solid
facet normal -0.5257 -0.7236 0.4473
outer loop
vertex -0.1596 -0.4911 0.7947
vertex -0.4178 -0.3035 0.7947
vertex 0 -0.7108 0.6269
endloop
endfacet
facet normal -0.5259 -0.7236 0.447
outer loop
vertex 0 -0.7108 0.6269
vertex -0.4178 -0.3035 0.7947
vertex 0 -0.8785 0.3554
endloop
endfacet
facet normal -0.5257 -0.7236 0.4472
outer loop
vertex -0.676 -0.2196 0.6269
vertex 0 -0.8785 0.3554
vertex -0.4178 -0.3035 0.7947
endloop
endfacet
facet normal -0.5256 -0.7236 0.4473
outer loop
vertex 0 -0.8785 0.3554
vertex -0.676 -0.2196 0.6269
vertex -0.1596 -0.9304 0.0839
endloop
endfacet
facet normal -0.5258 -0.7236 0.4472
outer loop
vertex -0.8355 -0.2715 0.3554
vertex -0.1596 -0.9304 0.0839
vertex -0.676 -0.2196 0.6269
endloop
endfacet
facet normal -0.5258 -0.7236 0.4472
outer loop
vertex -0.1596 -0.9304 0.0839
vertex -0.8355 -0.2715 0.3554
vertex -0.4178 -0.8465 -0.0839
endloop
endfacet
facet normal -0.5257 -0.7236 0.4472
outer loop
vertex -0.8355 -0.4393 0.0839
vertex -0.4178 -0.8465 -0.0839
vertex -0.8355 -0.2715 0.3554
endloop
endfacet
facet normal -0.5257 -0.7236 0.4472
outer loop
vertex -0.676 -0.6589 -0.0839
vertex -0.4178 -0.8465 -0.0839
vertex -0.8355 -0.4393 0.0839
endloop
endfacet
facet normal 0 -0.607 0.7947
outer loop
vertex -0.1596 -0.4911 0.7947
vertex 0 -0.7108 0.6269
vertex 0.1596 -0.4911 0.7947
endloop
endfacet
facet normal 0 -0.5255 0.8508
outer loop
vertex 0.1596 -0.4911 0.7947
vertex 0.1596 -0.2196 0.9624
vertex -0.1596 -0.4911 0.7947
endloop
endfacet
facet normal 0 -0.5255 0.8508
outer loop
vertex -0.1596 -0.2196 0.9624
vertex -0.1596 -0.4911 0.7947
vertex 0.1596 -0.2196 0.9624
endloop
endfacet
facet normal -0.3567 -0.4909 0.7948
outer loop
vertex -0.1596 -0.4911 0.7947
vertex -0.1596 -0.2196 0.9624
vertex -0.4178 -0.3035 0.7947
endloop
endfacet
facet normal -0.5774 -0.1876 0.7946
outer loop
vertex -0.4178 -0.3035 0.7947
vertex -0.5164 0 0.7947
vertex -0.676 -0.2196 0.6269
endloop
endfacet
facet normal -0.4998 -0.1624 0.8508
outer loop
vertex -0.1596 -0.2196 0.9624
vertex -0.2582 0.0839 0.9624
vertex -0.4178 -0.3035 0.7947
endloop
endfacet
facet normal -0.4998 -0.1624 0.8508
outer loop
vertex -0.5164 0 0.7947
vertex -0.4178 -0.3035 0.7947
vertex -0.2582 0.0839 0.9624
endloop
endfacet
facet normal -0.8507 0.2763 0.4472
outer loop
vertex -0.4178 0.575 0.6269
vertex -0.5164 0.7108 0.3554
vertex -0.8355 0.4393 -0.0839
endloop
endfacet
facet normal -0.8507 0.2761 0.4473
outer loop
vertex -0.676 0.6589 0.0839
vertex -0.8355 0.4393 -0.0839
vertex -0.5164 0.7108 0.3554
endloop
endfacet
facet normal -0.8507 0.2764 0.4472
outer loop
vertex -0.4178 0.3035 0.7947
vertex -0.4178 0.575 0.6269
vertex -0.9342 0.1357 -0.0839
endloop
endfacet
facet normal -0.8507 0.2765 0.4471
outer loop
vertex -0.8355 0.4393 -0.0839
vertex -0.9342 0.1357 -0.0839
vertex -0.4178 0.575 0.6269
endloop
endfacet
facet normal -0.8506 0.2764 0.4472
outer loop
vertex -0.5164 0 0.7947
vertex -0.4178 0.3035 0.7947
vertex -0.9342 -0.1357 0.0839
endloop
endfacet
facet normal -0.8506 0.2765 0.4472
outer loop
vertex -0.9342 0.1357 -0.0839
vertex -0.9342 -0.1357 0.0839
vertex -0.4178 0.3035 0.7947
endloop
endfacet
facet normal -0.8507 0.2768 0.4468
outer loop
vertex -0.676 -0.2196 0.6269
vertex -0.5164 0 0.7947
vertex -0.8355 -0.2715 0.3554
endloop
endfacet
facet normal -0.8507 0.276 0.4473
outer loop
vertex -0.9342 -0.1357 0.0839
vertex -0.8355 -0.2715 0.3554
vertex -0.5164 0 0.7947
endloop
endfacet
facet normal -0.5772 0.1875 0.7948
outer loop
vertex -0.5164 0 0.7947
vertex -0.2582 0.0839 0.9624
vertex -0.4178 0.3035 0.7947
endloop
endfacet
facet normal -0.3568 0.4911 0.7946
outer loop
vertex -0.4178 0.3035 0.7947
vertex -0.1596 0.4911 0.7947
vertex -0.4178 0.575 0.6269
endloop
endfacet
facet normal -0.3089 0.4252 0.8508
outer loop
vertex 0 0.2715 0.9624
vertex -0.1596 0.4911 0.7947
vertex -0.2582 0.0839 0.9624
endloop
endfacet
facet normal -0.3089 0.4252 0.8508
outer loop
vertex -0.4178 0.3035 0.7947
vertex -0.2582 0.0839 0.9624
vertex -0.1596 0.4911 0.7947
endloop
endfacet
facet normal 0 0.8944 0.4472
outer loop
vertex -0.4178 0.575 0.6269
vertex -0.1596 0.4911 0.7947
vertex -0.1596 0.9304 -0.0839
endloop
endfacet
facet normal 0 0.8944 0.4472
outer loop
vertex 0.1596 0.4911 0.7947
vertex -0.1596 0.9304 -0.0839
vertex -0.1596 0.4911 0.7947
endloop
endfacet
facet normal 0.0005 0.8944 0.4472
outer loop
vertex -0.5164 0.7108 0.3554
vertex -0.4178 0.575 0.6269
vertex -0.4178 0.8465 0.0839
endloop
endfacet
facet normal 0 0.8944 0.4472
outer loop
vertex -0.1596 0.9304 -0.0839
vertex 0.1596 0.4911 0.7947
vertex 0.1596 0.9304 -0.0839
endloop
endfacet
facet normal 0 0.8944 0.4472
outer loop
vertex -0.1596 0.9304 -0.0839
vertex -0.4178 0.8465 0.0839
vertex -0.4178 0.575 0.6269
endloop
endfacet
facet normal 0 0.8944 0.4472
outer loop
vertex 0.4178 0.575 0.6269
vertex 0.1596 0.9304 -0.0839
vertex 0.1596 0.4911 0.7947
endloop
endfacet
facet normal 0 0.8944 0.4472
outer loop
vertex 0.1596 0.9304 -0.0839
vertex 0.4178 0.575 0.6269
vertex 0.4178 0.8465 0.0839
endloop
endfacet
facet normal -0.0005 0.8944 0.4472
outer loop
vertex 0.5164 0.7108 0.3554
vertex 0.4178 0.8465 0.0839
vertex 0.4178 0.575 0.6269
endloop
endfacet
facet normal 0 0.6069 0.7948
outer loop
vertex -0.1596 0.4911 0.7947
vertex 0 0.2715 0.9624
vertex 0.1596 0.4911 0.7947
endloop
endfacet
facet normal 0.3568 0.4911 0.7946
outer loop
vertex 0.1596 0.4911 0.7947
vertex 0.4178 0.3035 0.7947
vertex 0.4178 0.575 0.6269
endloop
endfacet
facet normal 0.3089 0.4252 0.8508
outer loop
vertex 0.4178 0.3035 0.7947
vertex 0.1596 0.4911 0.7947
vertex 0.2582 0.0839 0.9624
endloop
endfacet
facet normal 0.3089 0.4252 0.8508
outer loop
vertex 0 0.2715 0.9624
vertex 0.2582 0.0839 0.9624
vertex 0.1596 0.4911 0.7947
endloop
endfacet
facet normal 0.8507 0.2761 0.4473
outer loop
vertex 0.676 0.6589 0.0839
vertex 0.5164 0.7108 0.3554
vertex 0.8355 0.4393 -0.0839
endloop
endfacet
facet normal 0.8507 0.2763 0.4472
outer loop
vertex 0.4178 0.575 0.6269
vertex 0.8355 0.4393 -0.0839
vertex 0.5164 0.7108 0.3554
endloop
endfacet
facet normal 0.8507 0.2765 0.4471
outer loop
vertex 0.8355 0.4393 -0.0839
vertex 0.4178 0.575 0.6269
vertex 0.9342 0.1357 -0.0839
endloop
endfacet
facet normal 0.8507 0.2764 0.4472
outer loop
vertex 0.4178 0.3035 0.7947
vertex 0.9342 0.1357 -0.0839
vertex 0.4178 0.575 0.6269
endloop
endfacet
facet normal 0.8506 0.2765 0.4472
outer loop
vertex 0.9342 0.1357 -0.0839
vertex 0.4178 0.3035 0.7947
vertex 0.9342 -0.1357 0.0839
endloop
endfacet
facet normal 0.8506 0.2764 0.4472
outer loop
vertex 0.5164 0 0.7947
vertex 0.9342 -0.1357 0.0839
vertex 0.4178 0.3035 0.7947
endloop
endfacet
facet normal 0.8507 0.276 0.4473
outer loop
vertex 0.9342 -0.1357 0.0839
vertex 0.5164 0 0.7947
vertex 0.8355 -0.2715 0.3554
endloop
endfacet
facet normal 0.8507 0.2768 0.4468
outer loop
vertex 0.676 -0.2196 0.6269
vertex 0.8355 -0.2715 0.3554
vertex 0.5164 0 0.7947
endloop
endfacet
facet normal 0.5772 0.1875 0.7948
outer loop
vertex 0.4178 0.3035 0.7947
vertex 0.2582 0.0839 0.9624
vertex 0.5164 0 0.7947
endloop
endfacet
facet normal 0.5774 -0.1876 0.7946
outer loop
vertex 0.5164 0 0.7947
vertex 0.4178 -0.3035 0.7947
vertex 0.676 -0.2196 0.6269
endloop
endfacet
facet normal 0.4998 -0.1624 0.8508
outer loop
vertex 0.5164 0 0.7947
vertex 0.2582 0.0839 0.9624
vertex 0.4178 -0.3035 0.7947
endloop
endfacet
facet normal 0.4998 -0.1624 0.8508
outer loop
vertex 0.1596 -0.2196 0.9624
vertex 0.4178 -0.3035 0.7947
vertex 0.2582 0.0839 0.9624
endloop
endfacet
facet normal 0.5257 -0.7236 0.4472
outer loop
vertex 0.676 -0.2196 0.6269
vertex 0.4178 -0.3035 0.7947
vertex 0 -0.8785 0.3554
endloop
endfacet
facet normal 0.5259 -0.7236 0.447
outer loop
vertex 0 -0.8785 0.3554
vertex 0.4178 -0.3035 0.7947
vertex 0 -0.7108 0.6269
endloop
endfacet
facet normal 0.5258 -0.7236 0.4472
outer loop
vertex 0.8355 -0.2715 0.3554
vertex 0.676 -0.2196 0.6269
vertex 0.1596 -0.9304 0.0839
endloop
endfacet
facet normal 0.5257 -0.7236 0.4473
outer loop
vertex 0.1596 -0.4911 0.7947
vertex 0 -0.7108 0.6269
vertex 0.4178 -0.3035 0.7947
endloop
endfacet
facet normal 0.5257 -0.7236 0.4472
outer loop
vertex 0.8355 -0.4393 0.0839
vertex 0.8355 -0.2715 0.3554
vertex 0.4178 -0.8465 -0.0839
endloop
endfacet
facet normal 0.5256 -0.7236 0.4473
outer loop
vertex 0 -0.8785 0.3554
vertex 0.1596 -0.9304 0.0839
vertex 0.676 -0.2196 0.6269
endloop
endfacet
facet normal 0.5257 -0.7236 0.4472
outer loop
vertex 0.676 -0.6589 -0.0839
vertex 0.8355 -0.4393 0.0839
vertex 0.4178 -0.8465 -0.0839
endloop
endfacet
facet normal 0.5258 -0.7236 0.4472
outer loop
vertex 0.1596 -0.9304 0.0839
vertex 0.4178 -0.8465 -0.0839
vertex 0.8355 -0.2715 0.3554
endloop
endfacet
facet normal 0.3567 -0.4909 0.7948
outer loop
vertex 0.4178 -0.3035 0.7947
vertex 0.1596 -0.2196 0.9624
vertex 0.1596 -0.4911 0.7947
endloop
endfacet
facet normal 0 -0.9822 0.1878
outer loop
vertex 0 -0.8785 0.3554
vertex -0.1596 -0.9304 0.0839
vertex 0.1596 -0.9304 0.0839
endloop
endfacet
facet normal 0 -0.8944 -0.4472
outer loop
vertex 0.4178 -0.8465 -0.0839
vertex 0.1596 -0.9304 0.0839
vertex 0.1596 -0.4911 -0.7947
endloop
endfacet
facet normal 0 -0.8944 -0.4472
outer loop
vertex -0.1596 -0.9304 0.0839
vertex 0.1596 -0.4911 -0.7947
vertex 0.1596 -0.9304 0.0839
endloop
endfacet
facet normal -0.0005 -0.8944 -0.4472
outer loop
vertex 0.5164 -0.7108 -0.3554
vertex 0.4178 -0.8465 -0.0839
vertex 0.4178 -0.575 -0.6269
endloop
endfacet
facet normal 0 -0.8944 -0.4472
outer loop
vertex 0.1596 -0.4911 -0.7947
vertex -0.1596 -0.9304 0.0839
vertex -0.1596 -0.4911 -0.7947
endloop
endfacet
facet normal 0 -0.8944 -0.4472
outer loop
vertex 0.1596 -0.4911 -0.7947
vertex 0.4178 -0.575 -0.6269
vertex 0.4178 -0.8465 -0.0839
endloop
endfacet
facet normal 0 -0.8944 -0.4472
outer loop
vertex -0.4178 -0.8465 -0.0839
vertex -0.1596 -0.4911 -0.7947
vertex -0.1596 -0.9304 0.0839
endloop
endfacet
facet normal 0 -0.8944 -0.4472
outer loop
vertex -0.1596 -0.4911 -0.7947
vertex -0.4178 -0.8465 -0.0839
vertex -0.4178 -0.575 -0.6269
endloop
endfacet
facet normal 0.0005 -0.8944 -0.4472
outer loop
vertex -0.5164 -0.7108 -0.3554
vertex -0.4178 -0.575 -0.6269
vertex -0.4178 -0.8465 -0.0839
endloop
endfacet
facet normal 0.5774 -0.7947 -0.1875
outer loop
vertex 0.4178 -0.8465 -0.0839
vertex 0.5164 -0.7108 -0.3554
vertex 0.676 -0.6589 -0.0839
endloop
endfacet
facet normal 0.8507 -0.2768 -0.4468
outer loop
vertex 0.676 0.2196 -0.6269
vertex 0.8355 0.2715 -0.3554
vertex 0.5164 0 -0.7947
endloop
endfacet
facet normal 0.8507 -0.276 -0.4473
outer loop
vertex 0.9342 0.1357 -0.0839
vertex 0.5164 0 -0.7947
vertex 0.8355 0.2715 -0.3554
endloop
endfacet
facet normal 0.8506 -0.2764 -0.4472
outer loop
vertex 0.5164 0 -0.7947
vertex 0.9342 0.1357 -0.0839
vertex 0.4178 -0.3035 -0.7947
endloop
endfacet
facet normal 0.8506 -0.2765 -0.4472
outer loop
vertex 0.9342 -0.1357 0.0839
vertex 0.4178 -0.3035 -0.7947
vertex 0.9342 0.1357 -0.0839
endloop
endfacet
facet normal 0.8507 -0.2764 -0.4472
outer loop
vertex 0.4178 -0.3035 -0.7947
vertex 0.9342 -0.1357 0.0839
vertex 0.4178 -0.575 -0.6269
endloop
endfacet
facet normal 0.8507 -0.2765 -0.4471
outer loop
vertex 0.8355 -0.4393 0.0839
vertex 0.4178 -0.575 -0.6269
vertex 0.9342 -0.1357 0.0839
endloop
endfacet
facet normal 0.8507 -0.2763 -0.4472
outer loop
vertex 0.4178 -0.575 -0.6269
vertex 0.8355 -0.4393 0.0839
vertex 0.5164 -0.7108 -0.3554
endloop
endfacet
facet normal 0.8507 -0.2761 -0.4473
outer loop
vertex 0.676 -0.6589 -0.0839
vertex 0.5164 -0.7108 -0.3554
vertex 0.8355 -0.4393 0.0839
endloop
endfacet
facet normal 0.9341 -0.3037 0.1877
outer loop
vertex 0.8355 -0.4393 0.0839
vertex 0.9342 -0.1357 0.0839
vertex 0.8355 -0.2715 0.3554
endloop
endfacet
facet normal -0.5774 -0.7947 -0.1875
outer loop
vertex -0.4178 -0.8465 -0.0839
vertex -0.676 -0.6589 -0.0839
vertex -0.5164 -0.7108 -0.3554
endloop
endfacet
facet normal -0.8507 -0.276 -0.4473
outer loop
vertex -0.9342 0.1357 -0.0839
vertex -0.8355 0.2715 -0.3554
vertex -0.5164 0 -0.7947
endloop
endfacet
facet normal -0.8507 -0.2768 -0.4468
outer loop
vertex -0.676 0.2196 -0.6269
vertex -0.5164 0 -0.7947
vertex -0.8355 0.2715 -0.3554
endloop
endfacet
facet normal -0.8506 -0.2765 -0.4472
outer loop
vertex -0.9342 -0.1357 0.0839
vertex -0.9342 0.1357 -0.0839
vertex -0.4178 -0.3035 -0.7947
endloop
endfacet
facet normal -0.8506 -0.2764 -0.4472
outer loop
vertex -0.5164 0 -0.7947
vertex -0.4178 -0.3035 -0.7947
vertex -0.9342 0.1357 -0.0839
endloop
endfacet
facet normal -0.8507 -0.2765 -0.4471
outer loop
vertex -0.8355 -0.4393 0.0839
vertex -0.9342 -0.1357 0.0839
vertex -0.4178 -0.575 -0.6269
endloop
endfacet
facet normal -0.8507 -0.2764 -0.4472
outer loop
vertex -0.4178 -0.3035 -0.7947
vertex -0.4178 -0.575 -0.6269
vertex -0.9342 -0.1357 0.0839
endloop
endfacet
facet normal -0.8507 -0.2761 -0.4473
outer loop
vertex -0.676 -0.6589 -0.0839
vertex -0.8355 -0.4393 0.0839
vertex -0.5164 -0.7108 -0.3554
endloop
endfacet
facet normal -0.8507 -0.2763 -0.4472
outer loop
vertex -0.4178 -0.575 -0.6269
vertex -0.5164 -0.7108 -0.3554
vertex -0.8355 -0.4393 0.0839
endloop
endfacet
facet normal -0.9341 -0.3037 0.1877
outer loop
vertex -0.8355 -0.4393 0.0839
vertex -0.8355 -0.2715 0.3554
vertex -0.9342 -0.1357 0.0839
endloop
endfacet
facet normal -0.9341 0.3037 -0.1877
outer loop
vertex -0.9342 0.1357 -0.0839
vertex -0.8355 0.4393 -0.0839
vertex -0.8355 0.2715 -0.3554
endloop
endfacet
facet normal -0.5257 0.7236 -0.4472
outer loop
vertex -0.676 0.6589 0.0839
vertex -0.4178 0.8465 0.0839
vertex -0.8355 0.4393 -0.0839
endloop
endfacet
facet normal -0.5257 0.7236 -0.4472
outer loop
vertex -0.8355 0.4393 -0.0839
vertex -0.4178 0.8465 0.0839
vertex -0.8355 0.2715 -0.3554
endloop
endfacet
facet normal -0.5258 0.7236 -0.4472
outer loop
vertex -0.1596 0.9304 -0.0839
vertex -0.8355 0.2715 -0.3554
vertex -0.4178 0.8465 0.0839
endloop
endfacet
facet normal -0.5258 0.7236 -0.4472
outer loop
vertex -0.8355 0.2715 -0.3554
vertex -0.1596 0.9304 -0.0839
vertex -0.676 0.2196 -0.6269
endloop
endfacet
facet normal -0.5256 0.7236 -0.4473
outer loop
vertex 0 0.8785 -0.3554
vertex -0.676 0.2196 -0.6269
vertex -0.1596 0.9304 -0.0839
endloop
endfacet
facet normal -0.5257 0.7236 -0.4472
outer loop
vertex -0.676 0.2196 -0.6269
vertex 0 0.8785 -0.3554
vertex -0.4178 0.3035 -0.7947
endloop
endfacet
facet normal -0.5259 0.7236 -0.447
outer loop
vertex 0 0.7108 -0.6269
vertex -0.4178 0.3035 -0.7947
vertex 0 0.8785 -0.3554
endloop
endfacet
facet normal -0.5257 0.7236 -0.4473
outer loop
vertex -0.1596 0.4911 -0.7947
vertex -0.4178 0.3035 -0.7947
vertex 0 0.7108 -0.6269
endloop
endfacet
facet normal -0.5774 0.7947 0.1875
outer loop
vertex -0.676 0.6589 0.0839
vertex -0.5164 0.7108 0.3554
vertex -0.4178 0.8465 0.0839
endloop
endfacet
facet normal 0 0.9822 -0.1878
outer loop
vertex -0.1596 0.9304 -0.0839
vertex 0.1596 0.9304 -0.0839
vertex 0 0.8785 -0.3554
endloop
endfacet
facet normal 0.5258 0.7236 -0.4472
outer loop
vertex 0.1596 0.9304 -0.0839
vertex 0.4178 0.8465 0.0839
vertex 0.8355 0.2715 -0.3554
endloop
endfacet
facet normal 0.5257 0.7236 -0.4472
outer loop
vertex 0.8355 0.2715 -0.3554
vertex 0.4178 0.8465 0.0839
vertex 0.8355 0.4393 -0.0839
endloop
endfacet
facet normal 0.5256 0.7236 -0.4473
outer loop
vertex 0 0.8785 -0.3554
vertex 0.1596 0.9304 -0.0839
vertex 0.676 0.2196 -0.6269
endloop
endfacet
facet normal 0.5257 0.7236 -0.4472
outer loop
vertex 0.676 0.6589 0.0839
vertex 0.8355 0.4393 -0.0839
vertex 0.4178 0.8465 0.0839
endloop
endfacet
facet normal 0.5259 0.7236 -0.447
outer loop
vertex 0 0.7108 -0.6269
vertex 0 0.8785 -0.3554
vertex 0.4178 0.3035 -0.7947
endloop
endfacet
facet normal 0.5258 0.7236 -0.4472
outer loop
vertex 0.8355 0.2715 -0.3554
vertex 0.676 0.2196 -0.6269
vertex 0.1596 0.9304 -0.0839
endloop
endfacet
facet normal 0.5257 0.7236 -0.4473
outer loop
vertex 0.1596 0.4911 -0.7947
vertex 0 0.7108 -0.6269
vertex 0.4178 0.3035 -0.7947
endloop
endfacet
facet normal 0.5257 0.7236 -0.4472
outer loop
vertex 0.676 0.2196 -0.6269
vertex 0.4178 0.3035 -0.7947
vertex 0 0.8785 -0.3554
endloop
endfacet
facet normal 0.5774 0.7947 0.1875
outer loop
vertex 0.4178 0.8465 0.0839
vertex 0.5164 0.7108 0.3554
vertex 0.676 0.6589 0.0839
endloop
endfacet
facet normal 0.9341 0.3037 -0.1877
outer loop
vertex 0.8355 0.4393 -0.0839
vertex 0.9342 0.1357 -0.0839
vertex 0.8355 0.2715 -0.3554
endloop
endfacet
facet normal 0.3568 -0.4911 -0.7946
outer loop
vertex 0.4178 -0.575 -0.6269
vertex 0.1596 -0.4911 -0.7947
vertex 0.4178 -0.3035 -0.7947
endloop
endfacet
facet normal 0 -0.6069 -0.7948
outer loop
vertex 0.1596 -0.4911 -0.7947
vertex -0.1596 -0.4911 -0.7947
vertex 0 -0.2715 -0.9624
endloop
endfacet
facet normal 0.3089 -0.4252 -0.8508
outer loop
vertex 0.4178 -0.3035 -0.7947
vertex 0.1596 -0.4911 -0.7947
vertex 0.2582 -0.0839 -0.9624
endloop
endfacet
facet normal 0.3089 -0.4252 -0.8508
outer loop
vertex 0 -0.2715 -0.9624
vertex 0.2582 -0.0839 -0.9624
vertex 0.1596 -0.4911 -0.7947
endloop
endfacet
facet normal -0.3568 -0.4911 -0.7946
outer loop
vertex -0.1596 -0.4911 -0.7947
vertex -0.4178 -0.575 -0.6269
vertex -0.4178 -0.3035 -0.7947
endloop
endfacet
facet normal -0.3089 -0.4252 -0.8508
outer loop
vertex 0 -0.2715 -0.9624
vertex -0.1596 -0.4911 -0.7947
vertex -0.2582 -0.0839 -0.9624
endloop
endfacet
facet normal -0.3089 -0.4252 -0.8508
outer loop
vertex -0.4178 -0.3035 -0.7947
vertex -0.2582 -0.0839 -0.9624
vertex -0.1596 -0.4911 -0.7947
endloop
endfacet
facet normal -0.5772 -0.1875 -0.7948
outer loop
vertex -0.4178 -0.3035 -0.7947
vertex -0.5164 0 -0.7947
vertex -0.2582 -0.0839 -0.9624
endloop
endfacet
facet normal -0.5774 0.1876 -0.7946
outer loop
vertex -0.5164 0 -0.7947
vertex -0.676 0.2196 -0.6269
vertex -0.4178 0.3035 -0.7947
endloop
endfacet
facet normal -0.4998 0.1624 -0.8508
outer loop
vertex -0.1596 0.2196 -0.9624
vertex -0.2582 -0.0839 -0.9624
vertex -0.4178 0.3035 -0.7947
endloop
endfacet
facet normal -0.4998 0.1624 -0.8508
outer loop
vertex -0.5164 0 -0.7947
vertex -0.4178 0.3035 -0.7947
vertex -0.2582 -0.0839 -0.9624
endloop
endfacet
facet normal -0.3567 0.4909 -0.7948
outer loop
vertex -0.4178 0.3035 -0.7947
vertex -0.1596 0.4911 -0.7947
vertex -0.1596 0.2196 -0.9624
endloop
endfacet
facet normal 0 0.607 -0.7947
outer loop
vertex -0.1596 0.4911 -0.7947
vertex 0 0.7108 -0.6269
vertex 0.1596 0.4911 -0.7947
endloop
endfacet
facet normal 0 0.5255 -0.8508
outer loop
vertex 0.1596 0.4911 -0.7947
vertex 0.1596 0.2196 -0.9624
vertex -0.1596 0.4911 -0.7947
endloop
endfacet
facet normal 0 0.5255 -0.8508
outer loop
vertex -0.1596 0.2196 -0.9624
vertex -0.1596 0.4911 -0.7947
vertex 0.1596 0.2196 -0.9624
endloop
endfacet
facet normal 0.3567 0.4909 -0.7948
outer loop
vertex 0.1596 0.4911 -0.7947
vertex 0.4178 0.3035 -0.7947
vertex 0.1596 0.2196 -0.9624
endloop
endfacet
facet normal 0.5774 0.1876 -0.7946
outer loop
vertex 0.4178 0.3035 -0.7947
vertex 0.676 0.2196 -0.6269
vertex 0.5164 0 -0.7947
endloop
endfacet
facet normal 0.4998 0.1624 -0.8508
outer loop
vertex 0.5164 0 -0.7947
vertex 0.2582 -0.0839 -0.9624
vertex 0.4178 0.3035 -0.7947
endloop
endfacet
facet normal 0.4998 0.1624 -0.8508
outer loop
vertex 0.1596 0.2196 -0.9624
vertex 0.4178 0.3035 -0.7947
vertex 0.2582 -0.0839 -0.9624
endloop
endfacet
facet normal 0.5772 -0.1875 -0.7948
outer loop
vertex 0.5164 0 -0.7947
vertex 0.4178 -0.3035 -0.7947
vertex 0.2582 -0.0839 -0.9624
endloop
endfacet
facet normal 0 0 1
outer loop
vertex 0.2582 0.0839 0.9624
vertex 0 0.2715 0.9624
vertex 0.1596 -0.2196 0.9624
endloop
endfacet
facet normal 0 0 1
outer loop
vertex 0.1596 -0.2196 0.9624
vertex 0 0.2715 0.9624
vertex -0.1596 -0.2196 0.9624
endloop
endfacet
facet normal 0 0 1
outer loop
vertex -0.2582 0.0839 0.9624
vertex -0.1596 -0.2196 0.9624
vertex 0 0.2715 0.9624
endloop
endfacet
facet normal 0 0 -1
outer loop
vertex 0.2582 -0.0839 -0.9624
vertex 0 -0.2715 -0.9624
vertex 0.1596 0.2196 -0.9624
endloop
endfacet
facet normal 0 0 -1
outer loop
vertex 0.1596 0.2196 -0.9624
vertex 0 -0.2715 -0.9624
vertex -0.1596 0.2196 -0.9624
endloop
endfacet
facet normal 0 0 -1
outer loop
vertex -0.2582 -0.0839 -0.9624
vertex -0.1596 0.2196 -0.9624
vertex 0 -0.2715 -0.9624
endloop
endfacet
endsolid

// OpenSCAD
polyhedron( points = [[-0.159575689818464, -0.491123472745523, 0.794654471765395], [-0.417774579428524, -0.303530998731715, 0.794654471765395], [-0.516397779336372, 1.56582400507809e-10, 0.794654471765395], [-0.417774579346762, 0.303530999018312, 0.794654471765395], [-0.15957568977437, 0.49112347293391, 0.794654471765395], [0.159575689427083, 0.49112347290525, 0.794654471765395], [0.41777457896579, 0.303530998943286, 0.794654471765395], [0.516397778900891, 6.38433913023845e-11, 0.794654471765395], [0.417774578938538, -0.303530998806744, 0.794654471765395], [0.159575689382992, -0.491123472745523, 0.794654471765395], [-2.09463164963614e-10, -0.710760567044096, 0.626866662264056], [-3.63274994516264e-10, -0.878548376710816, 0.355380283601738], [0.15957568919563, -0.930397661560633, 0.0838939048571575], [0.417774578775279, -0.846503757078729, -0.0838939047117158], [0.675973468481394, -0.658911283347184, -0.0838939048576319], [0.835549158285412, -0.439274189285908, 0.0838939045158697], [0.83554915800349, -0.271486378676927, 0.355380283487284], [0.675973468460984, -0.219637094053104, 0.626866662209767], [-0.159575690052842, -0.930397661452488, 0.0838939049783009], [-0.417774579638234, -0.846503756777565, -0.0838939044852236], [-0.675973469160765, -0.658911282821158, -0.0838939044752024], [-0.835549158685758, -0.439274188596972, 0.0838939050045383], [-0.835549158596233, -0.271486378903746, 0.355380283634167], [-0.675973468926386, -0.219637094142852, 0.626866662265525], [-0.934172358391848, -0.135743189192691, 0.0838939047208765], [-0.934172358314639, 0.135743189510097, -0.0838939048036474], [-0.835549158318935, 0.439274188369852, -0.0838939047908303], [-0.675973468721733, 0.658911282467756, 0.0838939047544289], [-0.516397779167589, 0.710760567053309, 0.355380283487284], [-0.417774579292151, 0.575017377701881, 0.626866662209767], [-0.417774579306426, 0.846503756298235, 0.0838939047208765], [-0.15957568973492, 0.930397660994554, -0.0838939048036474], [0.159575689466536, 0.930397660959489, -0.0838939047908303], [0.417774579006131, 0.846503756206432, 0.0838939047544289], [0.516397778942668, 0.710760566900333, 0.355380283487284], [0.417774578973332, 0.575017377617127, 0.626866662209767], [0.675973468415342, 0.658911282367562, 0.0838939047208765], [0.835549157968447, 0.439274188221775, -0.0838939048036474], [0.934172357897451, 0.135743189340353, -0.0838939047908303], [0.934172357910837, -0.135743189349621, 0.0838939047544289], [0.516397778754665, -0.710760567889696, -0.355380283444893], [0.417774578841956, -0.575017378476602, -0.626866662240599], [0.159575689292165, -0.491123473552388, -0.794654471684592], [-0.159575689917229, -0.491123473295864, -0.794654471573734], [-0.417774579491382, -0.575017377805014, -0.626866661950369], [-0.516397779475902, -0.710760567008051, -0.355380283189183], [-0.417774578949113, -0.303530998754098, -0.794654471542876], [-0.516397778144418, 8.06955507112621e-10, -0.794654471603802], [-0.675973468545556, 0.219637094243725, -0.626866662115482], [-0.83554915824267, 0.271486378835348, -0.355380283477725], [-0.417774577491876, 0.303531000200612, -0.794654471733243], [-0.15957568755937, 0.491123474304129, -0.794654471881757], [-8.52797769851552e-11, 0.710760566672386, -0.626866662115482], [-1.20714505017157e-10, 0.878548376286115, -0.355380283477725], [0.159575691561823, 0.491123474047604, -0.794654471992614], [0.417774580610553, 0.303530999529025, -0.794654472023473], [0.675973468191946, 0.219637093991777, -0.626866662115482], [0.835549157867161, 0.271486378650799, -0.355380283477728], [0.516397779833113, -2.31763901320113e-11, -0.794654471962544], [0.417774579207825, -0.303530999425688, -0.794654471833106], [-0.159575689520399, -0.219637093881039, 0.962442281046104], [0.159575689368659, -0.219637094000632, 0.96244228122179], [0.258198889308773, 0.0838939048329735, 0.96244228122179], [-2.01635997292168e-10, 0.271486378762361, 0.96244228122179], [-0.258198889458407, 0.0838939048852761, 0.962442281005078], [-2.88005159432024e-11, -0.271486378634465, -0.962442281269518], [-0.258198888878245, -0.0838939043730725, -0.962442281414346], [-0.159575688229445, 0.219637094977594, -0.962442281543784], [0.159575690849707, 0.219637094711346, -0.962442281654645], [0.25819888983956, -0.0838939046241776, -0.962442281377005]], faces = [[0, 1, 23, 22, 21, 20, 19, 18, 11, 10], [0, 10, 9], [0, 9, 61, 60], [0, 60, 1], [1, 2, 23], [1, 60, 64, 2], [2, 3, 29, 28, 27, 26, 25, 24, 22, 23], [2, 64, 3], [3, 4, 29], [3, 64, 63, 4], [4, 5, 35, 34, 33, 32, 31, 30, 28, 29], [4, 63, 5], [5, 6, 35], [5, 63, 62, 6], [6, 7, 17, 16, 39, 38, 37, 36, 34, 35], [6, 62, 7], [7, 8, 17], [7, 62, 61, 8], [8, 9, 10, 11, 12, 13, 14, 15, 16, 17], [8, 61, 9], [11, 18, 12], [12, 18, 19, 45, 44, 43, 42, 41, 40, 13], [13, 40, 14], [14, 40, 41, 59, 58, 56, 57, 38, 39, 15], [15, 39, 16], [19, 20, 45], [20, 21, 24, 25, 49, 48, 47, 46, 44, 45], [21, 22, 24], [25, 26, 49], [26, 27, 30, 31, 53, 52, 51, 50, 48, 49], [27, 28, 30], [31, 32, 53], [32, 33, 36, 37, 57, 56, 55, 54, 52, 53], [33, 34, 36], [37, 38, 57], [41, 42, 59], [42, 43, 65], [42, 65, 69, 59], [43, 44, 46], [43, 46, 66, 65], [46, 47, 66], [47, 48, 50], [47, 50, 67, 66], [50, 51, 67], [51, 52, 54], [51, 54, 68, 67], [54, 55, 68], [55, 56, 58], [55, 58, 69, 68], [58, 59, 69], [60, 61, 62, 63, 64], [65, 66, 67, 68, 69]]);
